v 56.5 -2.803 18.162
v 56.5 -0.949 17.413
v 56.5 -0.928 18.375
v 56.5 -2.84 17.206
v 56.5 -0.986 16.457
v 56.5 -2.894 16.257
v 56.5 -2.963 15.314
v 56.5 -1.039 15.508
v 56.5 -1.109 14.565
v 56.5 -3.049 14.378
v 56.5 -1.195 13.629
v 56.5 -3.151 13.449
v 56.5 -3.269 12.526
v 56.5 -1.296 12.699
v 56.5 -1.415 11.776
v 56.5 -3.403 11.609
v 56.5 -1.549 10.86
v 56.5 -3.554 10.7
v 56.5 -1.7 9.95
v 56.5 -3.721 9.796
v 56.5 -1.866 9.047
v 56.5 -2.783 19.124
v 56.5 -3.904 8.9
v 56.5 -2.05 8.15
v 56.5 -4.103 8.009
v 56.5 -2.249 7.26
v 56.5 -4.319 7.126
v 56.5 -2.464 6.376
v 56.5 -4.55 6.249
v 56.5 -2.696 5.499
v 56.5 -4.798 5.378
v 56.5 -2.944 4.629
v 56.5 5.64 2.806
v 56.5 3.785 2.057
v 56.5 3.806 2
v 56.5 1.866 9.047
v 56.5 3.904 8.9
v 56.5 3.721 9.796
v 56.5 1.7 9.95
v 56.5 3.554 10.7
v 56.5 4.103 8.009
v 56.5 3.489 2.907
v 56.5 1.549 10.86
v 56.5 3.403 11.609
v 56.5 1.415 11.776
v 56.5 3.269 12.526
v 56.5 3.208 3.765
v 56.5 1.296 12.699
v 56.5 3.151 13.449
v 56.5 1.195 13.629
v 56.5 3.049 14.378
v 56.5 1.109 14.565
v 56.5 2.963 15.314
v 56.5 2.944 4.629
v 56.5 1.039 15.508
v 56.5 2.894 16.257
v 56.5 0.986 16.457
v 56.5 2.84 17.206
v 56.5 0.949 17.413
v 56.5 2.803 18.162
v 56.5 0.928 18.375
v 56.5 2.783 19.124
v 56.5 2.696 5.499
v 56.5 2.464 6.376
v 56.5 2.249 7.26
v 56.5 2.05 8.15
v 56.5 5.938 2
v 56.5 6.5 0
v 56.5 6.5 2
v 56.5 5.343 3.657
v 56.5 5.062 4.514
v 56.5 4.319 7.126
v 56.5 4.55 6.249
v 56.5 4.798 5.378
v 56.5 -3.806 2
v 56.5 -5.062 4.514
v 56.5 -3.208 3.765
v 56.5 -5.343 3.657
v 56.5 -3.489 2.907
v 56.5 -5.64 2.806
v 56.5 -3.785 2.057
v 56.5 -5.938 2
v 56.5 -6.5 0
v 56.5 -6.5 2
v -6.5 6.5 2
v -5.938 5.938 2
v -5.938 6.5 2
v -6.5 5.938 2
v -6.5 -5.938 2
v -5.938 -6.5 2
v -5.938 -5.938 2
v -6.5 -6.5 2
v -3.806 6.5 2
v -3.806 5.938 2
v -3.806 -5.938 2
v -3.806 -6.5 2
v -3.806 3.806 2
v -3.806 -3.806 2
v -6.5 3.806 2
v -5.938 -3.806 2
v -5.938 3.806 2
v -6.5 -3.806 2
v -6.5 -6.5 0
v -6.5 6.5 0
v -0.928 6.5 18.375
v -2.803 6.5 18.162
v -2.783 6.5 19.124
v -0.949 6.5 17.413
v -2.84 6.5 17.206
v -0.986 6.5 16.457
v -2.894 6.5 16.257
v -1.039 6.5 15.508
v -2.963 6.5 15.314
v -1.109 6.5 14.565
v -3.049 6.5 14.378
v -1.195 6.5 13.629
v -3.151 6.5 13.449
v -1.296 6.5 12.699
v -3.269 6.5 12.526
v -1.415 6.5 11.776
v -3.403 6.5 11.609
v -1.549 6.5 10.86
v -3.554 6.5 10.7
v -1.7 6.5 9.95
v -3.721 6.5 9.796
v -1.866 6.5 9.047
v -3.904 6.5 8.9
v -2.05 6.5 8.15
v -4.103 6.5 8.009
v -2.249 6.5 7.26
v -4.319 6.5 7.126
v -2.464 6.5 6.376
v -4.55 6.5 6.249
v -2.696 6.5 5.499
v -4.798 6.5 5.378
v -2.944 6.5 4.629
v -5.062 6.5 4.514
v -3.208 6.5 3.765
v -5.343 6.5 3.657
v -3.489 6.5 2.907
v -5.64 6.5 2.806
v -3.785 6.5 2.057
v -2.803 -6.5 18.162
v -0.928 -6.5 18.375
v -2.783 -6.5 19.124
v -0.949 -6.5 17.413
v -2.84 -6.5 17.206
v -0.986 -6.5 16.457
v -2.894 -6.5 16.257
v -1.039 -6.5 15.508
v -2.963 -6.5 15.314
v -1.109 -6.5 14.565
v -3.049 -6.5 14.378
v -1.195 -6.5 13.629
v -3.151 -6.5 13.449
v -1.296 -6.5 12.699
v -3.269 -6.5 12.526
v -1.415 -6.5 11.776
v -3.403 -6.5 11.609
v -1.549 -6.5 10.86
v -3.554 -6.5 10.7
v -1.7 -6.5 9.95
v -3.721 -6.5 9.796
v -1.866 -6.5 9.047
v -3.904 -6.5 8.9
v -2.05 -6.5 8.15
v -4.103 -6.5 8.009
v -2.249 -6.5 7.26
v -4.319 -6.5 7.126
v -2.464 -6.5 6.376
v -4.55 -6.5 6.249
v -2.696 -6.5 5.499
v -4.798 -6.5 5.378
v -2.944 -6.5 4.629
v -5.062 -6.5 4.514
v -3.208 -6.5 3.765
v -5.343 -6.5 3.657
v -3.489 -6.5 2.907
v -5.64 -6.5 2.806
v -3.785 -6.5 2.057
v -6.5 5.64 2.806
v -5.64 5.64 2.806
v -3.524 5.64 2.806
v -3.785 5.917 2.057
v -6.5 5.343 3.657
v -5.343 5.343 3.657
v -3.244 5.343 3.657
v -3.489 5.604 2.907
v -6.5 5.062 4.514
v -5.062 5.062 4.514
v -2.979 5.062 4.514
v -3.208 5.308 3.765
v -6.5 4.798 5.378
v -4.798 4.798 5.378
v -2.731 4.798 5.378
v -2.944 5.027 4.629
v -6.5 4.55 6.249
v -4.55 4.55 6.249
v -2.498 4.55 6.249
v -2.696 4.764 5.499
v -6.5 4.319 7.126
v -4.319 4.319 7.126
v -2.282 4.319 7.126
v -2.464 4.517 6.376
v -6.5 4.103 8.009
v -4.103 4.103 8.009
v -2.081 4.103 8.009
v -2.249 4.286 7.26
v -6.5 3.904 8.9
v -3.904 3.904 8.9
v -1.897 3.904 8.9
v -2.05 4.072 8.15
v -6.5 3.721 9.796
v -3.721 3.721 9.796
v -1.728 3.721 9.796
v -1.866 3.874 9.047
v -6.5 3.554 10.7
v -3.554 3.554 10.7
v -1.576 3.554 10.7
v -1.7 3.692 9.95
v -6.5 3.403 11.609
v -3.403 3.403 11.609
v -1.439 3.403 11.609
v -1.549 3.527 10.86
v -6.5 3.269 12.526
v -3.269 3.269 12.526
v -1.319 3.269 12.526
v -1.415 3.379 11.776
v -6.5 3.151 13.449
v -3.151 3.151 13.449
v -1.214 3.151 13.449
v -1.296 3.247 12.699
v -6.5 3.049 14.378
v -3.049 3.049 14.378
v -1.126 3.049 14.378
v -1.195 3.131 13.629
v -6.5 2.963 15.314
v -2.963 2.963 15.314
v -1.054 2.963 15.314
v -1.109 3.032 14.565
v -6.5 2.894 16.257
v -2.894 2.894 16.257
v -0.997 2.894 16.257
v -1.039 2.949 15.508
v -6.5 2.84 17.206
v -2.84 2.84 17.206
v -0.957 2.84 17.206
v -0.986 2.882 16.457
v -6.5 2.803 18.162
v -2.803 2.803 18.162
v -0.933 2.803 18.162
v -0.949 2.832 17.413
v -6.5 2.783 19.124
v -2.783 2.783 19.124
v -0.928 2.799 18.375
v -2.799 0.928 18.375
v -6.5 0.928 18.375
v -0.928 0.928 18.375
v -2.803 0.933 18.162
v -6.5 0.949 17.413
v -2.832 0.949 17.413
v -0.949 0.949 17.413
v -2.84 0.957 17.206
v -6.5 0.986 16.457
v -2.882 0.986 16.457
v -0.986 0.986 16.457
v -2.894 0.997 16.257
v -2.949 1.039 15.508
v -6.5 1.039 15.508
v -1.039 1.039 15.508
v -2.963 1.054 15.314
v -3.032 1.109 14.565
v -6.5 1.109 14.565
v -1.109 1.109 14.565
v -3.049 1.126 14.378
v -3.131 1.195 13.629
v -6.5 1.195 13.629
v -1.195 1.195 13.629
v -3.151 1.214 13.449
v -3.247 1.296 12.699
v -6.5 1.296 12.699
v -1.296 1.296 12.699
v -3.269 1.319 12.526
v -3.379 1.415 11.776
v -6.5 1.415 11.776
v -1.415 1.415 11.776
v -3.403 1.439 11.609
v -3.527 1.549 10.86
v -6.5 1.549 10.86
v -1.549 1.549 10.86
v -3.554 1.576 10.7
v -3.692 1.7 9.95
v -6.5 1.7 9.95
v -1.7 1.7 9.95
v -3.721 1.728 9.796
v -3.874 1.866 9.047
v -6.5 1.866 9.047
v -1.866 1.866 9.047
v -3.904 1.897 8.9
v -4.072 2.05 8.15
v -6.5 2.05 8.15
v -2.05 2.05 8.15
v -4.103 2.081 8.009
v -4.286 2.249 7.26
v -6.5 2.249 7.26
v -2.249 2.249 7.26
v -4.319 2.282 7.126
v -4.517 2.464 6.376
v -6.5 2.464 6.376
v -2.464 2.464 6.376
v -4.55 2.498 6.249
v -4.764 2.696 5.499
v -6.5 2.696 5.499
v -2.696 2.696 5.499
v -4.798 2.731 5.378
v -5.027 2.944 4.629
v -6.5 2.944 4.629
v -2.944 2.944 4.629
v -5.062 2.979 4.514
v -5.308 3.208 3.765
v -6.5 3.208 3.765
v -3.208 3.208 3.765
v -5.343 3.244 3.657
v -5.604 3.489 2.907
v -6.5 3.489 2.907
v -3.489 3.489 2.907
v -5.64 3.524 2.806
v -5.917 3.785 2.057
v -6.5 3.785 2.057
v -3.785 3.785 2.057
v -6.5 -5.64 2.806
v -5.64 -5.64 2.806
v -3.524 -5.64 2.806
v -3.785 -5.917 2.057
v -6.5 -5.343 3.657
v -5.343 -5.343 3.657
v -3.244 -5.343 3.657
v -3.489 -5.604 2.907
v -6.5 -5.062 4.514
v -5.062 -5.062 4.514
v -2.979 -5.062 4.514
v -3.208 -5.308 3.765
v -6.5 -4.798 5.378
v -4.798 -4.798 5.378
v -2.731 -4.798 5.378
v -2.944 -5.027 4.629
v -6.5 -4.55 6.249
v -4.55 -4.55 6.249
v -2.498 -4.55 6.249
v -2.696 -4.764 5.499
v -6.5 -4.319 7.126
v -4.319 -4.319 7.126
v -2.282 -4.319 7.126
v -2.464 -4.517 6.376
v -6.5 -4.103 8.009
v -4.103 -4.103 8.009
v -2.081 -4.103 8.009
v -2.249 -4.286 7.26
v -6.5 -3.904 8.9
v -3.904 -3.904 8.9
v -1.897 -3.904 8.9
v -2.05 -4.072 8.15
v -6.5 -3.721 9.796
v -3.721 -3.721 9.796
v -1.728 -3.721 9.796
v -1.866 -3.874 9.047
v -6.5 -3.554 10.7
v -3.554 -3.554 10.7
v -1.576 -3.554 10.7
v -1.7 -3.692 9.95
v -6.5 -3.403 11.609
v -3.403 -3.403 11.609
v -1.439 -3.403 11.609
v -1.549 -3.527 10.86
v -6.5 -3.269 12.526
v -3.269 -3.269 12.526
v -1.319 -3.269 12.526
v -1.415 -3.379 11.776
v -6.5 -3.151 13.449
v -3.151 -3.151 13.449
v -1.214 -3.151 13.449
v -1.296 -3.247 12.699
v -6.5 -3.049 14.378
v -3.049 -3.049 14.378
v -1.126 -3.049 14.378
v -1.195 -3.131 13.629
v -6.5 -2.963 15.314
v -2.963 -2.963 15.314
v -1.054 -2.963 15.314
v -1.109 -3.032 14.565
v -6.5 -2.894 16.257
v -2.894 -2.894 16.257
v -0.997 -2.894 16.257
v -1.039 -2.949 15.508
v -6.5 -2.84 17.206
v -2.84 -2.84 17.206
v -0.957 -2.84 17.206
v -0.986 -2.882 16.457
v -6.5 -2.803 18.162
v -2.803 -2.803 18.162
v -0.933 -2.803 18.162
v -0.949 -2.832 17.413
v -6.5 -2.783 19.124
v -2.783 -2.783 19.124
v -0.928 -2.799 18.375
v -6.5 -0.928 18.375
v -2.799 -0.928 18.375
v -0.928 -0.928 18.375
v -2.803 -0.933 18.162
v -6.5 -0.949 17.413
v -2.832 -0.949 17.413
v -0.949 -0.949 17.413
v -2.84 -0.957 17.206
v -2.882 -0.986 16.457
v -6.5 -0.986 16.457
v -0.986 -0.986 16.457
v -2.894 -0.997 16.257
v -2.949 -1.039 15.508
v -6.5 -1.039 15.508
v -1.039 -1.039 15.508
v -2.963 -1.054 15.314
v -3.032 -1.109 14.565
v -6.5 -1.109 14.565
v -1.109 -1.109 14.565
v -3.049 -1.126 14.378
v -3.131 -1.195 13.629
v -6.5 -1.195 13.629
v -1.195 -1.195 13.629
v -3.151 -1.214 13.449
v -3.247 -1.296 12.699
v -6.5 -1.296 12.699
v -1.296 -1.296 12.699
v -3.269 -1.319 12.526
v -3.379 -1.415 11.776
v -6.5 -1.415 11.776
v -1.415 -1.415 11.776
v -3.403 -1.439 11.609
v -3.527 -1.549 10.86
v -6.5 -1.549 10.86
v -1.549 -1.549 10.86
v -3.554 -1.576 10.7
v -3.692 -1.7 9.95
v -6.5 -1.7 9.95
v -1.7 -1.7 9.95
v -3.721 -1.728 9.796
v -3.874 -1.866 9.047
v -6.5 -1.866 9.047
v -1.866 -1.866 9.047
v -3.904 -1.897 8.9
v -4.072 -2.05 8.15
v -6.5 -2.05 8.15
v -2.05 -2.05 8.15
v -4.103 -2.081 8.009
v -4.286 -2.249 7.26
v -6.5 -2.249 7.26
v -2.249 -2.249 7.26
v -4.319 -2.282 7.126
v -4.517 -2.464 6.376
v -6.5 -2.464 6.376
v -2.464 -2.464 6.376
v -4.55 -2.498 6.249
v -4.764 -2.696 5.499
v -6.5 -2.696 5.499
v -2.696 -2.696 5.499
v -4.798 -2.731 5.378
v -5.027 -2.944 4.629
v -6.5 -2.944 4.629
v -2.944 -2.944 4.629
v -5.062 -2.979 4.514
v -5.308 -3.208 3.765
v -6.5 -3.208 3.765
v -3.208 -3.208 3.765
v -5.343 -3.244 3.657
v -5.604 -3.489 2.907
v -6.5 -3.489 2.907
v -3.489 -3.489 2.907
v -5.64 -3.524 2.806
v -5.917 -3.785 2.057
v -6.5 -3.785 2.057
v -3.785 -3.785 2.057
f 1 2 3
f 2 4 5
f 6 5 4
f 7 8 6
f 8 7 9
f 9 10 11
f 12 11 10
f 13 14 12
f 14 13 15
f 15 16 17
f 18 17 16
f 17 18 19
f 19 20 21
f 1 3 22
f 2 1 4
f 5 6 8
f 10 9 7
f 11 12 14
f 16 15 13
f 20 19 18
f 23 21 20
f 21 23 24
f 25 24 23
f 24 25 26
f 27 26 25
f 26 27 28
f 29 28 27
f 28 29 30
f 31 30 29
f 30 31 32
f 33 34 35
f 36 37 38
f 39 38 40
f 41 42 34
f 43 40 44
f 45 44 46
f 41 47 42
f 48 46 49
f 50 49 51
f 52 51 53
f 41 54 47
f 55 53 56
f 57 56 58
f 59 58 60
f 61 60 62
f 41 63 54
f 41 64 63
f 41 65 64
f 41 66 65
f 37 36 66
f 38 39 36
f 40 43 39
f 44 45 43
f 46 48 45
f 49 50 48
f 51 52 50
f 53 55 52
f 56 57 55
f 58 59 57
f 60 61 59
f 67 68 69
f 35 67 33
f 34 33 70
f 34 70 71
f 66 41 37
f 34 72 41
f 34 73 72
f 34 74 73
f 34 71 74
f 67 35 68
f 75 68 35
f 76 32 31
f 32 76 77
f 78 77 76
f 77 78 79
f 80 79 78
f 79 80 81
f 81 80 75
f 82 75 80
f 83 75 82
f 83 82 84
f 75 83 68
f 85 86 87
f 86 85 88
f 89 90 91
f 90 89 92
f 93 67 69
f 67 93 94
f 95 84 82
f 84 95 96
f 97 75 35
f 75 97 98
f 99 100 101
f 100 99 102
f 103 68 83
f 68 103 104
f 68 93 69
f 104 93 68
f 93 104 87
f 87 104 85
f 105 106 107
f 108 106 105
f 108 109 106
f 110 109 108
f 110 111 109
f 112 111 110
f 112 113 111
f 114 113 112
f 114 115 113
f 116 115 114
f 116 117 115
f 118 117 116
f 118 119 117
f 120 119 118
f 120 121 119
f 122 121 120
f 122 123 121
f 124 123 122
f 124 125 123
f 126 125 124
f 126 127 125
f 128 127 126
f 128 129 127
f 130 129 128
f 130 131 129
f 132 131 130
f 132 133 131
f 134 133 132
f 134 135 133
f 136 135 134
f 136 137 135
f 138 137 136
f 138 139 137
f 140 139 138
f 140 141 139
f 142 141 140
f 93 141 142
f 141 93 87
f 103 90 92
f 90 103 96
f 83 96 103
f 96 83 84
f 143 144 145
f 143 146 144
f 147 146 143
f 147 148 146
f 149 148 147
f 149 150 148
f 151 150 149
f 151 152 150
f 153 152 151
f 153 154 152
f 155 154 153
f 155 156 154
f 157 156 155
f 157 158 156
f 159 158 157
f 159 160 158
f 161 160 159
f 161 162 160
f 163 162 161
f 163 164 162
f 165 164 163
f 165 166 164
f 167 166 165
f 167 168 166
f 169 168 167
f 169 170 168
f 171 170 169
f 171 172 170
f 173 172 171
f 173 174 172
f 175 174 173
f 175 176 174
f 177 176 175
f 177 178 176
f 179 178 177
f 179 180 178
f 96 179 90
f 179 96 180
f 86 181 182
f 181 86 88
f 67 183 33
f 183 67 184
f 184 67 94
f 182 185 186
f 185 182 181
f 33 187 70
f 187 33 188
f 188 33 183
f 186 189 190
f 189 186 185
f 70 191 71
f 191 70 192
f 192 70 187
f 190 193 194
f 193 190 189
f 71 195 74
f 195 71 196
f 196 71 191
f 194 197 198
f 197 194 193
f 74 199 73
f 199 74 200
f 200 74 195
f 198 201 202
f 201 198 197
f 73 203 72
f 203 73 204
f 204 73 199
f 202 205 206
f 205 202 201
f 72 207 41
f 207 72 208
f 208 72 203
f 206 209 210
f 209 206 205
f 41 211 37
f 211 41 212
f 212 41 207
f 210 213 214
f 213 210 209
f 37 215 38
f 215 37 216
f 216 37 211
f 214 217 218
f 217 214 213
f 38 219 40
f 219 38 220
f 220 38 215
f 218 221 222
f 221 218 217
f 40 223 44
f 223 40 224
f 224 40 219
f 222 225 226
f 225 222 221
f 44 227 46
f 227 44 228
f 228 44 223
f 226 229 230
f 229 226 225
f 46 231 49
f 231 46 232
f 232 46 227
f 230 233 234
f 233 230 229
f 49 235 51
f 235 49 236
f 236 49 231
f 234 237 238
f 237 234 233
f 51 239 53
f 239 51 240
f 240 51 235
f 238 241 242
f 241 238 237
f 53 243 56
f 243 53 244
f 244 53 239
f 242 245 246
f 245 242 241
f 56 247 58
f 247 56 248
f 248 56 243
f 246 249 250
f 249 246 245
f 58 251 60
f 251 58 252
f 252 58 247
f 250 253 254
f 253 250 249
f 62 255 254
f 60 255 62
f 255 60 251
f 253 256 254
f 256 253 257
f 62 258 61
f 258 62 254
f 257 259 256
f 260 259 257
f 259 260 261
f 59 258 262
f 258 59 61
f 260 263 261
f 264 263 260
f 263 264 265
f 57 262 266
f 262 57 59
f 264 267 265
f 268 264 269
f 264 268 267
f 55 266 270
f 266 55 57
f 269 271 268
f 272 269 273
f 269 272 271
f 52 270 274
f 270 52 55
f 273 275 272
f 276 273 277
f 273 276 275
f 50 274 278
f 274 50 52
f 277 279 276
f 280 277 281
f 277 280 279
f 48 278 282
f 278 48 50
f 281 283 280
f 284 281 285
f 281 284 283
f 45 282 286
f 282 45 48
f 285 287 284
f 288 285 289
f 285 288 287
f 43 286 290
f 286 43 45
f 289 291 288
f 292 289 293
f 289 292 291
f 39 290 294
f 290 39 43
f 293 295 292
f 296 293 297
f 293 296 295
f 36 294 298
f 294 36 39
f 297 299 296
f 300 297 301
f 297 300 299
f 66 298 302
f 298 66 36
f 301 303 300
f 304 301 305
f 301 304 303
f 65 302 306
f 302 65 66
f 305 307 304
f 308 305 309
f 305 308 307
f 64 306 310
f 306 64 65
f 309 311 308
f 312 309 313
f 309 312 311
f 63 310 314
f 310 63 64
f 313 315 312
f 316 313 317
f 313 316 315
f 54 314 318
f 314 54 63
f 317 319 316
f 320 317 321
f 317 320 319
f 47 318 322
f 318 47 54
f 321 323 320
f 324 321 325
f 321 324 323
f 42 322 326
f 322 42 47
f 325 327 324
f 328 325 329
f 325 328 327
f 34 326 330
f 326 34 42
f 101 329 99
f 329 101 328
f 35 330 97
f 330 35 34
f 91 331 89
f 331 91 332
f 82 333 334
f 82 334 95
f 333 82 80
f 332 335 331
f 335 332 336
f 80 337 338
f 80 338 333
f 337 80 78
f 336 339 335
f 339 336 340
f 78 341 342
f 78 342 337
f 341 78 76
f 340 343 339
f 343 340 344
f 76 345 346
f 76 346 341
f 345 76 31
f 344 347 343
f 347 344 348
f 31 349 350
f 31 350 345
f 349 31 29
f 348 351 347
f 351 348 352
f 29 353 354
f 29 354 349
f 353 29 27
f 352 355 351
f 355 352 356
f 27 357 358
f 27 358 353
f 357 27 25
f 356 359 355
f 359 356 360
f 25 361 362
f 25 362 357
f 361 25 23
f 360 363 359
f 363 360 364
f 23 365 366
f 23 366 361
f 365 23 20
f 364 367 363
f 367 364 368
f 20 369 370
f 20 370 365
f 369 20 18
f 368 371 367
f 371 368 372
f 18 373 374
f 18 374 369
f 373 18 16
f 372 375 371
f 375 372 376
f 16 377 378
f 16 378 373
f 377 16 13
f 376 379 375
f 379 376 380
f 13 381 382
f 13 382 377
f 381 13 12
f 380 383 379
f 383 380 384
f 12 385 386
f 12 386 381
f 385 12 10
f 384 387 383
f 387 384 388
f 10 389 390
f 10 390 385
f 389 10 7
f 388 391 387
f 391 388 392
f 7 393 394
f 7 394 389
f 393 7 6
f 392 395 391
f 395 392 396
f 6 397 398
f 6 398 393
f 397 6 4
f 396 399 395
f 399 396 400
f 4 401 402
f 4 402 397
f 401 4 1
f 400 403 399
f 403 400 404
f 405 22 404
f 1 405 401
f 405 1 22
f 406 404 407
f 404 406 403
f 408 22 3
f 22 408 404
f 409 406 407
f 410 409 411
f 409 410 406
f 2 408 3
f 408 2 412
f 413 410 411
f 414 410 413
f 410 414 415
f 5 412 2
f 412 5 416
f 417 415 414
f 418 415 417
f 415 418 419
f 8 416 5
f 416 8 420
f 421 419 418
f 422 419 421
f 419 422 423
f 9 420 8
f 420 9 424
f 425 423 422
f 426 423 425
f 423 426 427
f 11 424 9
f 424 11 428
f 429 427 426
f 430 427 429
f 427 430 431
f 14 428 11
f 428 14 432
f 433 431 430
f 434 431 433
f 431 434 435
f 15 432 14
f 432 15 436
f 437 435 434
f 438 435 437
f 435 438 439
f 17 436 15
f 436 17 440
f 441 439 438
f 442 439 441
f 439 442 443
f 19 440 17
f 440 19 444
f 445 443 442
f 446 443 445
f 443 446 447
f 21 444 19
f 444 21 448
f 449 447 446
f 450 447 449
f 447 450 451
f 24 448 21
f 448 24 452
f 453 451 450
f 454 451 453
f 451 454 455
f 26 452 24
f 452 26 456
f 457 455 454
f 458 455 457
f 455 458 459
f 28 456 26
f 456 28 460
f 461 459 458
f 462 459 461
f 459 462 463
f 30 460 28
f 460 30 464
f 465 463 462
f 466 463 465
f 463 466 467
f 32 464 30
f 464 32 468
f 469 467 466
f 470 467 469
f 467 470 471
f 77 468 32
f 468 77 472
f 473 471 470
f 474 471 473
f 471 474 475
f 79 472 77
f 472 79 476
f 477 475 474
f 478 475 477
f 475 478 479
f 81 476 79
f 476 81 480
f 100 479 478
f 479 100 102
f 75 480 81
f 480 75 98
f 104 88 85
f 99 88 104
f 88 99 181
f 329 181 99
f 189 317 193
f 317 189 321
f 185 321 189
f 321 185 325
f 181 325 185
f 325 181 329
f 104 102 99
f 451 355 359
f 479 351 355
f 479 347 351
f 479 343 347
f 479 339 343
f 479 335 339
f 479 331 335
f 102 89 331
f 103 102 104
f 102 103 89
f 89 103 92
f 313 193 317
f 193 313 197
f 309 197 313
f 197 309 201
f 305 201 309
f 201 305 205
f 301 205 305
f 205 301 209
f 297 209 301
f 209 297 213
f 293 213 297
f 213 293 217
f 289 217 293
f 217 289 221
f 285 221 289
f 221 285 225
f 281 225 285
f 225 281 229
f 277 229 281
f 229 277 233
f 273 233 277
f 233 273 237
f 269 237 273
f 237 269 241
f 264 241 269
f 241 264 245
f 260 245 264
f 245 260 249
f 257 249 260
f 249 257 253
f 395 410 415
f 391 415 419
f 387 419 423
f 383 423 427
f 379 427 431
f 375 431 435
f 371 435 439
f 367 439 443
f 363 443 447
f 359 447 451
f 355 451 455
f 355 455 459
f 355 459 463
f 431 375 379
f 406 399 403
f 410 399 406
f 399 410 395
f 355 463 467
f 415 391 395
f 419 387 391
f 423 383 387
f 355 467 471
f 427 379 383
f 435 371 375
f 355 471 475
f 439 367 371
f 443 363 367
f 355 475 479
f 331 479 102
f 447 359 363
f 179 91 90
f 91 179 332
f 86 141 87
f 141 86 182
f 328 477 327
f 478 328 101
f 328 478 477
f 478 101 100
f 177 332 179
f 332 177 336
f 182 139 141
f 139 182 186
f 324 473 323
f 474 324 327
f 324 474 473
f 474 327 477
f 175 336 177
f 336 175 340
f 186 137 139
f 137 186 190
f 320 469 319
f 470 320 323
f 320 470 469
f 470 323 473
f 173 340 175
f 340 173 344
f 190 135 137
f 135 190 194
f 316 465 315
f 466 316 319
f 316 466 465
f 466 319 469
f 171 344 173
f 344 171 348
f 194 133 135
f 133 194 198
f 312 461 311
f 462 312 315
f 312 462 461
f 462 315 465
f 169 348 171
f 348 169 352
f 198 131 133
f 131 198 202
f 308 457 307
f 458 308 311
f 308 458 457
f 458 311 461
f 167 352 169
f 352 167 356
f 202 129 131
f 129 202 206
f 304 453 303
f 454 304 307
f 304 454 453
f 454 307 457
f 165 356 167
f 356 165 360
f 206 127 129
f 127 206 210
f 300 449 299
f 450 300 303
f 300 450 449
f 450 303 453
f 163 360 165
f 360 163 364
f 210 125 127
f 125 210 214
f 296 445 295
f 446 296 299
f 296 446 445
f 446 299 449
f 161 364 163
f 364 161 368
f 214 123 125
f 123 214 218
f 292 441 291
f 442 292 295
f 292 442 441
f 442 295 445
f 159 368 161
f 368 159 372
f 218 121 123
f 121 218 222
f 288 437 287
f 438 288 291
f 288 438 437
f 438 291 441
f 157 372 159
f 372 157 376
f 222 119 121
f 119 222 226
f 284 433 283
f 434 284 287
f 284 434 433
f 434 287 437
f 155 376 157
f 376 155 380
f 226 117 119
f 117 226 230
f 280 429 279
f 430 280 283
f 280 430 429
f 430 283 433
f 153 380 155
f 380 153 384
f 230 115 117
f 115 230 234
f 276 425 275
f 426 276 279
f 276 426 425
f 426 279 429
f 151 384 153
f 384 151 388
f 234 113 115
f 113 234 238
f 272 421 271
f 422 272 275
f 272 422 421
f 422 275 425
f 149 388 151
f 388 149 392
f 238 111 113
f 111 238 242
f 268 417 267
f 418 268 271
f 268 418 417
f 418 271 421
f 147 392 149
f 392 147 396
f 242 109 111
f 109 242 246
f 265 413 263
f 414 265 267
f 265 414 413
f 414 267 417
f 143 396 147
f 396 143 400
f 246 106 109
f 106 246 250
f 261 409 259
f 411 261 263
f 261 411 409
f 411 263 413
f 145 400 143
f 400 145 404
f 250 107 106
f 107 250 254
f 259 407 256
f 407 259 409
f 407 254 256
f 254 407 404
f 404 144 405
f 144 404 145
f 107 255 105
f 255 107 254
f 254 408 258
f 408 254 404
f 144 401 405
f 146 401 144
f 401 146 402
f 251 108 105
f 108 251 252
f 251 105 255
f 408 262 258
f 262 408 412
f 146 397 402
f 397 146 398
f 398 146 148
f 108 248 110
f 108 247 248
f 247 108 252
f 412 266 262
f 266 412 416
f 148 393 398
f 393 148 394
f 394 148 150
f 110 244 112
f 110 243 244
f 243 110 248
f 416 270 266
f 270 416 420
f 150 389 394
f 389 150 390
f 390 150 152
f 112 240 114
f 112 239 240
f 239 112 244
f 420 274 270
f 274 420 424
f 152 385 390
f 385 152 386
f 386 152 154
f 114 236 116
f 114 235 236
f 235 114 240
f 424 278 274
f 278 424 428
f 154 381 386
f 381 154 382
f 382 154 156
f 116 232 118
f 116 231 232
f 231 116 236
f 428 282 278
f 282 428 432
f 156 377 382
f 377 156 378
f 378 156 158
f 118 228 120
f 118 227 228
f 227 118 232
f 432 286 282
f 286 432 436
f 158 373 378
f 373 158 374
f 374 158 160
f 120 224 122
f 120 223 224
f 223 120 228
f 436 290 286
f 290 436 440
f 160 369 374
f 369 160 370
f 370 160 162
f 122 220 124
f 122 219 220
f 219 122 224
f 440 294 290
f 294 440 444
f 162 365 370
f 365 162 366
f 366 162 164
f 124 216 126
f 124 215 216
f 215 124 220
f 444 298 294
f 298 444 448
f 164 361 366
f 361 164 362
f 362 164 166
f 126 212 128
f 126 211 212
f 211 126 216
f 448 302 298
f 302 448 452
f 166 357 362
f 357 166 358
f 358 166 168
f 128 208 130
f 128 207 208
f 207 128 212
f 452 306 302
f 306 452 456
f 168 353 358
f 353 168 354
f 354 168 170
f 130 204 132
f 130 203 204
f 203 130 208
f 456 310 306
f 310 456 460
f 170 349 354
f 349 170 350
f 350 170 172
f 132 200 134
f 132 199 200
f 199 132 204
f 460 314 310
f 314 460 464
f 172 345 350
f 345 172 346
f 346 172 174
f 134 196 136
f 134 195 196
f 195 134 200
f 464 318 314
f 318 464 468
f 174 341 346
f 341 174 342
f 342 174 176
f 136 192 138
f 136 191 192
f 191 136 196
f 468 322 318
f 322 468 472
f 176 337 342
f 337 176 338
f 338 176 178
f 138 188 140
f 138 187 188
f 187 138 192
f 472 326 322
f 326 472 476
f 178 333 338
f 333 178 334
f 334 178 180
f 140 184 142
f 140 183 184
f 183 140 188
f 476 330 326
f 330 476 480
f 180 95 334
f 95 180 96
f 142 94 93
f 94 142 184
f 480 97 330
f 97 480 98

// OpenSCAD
use <common.scad>

// Заглушка с гибкими стенками (1 выход)
// Выход: право (0)
// Гибкие стенки для картона

union() {
    // Основание центра
    draw_center_base(with_dowel = false);

    // Гибкие стенки центра на трех сторонах без выходов
    place_center_wall(1, "flexible");  // перед - закрыто гибкой стенкой
    place_center_wall(2, "flexible");  // лево - закрыто гибкой стенкой
    place_center_wall(3, "flexible");  // назад - закрыто гибкой стенкой

    // Рукав на одной стороне с гибкими стенками
    place_sleeve(0, with_dowel = false, wall_type = "flexible");  // право
}
